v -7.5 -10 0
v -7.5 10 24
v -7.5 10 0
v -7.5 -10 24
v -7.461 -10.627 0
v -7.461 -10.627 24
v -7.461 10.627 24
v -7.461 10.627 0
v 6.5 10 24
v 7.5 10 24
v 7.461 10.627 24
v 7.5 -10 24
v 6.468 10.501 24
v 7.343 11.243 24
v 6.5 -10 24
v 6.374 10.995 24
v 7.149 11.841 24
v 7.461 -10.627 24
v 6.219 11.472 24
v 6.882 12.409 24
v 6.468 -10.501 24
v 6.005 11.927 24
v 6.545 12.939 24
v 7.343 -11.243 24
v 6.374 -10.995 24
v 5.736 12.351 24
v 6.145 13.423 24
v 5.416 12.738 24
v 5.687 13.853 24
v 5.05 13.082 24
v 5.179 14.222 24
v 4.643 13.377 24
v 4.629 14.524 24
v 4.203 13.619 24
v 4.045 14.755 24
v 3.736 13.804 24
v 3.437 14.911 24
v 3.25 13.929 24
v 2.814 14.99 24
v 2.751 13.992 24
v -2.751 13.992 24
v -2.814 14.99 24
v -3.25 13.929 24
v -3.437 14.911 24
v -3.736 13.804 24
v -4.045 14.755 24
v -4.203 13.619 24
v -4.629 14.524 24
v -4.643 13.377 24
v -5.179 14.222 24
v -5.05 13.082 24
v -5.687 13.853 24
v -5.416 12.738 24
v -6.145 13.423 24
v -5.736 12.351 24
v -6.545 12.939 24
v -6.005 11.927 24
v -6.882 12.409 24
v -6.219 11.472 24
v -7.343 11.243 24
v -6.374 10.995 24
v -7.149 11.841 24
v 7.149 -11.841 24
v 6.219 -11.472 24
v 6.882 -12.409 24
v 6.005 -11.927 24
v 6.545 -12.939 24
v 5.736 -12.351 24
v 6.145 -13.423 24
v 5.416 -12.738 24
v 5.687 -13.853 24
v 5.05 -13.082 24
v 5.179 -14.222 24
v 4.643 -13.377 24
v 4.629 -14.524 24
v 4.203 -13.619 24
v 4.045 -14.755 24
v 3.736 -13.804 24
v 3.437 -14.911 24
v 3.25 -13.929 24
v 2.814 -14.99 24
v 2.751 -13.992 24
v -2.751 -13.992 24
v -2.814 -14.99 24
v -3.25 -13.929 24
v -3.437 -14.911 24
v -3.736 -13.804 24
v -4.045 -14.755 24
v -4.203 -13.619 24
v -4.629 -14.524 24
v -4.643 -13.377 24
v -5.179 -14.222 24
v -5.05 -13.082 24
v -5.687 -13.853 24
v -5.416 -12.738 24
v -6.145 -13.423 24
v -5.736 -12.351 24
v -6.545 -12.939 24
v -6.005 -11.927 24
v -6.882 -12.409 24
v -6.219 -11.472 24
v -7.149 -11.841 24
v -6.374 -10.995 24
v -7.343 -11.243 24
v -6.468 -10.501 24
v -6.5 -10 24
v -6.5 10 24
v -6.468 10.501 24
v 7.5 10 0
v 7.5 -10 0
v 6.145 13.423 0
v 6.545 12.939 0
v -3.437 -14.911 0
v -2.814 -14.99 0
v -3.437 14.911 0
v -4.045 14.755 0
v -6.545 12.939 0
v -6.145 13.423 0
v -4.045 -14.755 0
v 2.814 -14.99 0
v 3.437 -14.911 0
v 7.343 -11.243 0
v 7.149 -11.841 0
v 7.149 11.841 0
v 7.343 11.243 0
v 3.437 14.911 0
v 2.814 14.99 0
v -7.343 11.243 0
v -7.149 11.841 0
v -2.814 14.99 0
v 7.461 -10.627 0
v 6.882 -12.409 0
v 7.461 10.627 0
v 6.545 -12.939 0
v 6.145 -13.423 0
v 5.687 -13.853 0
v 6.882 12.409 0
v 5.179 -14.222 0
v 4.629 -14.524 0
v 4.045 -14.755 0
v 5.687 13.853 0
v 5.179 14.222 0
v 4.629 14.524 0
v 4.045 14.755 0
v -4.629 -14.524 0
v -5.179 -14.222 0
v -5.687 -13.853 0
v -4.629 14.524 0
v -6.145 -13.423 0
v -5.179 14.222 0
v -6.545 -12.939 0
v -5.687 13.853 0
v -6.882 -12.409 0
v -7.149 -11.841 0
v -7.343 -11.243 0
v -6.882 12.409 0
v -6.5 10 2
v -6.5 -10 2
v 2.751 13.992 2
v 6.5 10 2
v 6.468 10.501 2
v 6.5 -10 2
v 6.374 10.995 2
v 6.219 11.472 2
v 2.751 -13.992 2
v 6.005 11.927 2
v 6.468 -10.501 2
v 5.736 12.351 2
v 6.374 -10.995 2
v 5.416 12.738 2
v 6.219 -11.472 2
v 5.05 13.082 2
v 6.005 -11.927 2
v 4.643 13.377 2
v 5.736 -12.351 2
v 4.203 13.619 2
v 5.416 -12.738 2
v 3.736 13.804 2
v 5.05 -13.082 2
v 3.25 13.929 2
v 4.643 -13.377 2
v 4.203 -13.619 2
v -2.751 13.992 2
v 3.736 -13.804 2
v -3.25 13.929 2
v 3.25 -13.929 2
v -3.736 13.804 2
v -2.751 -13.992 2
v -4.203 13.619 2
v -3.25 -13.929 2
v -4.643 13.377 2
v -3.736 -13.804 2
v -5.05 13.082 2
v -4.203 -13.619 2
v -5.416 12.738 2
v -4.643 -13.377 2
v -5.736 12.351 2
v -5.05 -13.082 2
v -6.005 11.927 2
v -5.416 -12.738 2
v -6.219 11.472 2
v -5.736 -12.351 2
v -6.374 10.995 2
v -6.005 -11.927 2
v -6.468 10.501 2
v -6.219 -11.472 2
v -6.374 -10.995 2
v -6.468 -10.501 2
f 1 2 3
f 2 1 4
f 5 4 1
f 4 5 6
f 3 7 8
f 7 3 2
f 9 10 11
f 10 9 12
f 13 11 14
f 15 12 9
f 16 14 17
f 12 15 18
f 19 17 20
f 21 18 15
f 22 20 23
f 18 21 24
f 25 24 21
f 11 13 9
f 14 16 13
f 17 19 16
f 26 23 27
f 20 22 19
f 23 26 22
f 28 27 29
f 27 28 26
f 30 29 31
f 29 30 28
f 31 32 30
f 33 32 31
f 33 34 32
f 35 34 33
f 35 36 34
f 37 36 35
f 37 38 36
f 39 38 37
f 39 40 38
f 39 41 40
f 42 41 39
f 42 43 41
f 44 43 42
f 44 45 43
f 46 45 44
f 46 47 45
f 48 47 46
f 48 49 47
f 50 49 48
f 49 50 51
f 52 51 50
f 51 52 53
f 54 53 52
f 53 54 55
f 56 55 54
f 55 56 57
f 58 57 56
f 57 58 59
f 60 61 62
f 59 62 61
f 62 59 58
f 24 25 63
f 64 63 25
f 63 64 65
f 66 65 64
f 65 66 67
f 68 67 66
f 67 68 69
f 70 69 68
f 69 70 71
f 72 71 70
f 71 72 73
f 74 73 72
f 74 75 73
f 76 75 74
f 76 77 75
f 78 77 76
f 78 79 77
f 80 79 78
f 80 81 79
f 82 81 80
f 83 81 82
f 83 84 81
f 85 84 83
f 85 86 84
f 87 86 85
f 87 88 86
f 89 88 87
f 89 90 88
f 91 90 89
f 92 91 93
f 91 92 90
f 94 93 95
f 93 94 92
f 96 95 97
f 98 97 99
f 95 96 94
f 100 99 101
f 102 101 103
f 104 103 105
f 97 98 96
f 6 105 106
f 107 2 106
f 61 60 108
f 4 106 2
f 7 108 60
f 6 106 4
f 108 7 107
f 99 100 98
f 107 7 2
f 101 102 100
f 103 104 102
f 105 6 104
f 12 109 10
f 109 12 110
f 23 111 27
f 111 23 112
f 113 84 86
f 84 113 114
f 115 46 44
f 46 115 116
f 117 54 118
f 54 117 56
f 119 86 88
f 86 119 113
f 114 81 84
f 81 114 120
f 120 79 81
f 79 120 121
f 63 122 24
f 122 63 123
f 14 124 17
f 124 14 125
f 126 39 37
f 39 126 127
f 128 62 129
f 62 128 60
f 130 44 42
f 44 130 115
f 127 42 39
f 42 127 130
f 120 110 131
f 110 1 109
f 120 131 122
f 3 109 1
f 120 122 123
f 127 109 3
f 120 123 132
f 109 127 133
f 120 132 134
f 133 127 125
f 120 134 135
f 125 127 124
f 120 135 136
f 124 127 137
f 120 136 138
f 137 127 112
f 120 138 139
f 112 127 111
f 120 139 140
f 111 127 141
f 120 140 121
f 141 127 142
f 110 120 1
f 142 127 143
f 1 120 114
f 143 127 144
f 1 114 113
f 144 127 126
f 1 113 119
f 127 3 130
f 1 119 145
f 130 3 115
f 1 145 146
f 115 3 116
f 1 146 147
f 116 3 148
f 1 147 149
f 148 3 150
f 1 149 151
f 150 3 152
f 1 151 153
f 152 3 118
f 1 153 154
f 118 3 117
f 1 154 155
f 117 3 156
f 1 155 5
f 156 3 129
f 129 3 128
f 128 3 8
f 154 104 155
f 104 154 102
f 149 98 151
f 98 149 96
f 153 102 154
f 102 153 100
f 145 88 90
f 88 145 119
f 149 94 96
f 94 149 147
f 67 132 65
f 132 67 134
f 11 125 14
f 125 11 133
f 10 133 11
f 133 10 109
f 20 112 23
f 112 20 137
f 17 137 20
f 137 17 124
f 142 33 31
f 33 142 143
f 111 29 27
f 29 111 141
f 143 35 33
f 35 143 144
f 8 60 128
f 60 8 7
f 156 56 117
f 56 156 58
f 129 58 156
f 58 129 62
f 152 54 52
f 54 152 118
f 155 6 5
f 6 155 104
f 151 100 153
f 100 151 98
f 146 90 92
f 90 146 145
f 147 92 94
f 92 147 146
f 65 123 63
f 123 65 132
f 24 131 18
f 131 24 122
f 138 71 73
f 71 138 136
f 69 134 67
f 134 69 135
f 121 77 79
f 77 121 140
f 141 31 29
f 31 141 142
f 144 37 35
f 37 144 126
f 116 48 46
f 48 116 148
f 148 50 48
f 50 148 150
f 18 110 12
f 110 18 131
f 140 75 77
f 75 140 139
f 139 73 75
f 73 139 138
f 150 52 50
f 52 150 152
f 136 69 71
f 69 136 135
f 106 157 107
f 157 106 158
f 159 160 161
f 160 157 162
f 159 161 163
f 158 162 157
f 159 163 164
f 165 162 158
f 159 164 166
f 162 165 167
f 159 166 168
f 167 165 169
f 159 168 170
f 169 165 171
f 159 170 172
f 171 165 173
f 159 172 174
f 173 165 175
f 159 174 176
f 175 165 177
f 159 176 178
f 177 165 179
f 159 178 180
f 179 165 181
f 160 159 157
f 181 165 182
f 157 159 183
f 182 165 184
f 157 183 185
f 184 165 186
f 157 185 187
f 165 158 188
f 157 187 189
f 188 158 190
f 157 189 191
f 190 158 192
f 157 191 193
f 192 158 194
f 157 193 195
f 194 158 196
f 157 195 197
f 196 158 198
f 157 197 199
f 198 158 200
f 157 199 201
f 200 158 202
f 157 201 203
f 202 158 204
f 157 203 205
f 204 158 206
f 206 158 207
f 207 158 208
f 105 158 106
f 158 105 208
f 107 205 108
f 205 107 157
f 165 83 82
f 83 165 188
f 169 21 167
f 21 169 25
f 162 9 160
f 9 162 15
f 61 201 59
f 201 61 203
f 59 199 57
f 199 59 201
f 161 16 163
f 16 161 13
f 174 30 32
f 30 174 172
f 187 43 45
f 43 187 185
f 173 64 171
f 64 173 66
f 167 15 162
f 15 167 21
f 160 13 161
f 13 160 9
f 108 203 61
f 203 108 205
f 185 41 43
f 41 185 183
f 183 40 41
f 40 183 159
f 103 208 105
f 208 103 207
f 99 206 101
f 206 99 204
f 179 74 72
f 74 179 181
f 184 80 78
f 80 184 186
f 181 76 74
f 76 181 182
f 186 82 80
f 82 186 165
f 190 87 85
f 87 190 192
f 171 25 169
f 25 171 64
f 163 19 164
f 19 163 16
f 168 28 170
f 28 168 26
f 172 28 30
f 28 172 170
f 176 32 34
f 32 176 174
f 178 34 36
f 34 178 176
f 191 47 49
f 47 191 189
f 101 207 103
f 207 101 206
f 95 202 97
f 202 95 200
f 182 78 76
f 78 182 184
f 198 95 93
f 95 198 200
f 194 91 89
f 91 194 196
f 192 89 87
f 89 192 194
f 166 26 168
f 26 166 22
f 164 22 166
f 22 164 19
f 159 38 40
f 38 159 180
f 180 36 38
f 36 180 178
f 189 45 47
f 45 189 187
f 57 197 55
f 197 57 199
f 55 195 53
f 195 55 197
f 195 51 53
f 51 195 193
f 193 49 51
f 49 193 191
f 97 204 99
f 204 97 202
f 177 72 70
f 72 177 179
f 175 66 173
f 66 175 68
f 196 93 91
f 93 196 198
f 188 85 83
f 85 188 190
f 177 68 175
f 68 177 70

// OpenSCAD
$fn = 50;


difference() {
	union() {
		hull() {
			translate(v = [-2.5000000000, 10.0000000000, 0]) {
				cylinder(h = 24, r = 5);
			}
			translate(v = [2.5000000000, 10.0000000000, 0]) {
				cylinder(h = 24, r = 5);
			}
			translate(v = [-2.5000000000, -10.0000000000, 0]) {
				cylinder(h = 24, r = 5);
			}
			translate(v = [2.5000000000, -10.0000000000, 0]) {
				cylinder(h = 24, r = 5);
			}
		}
	}
	union() {
		translate(v = [0, 0, 2]) {
			hull() {
				translate(v = [-2.5000000000, 10.0000000000, 0]) {
					cylinder(h = 22, r = 4);
				}
				translate(v = [2.5000000000, 10.0000000000, 0]) {
					cylinder(h = 22, r = 4);
				}
				translate(v = [-2.5000000000, -10.0000000000, 0]) {
					cylinder(h = 22, r = 4);
				}
				translate(v = [2.5000000000, -10.0000000000, 0]) {
					cylinder(h = 22, r = 4);
				}
			}
		}
	}
}
